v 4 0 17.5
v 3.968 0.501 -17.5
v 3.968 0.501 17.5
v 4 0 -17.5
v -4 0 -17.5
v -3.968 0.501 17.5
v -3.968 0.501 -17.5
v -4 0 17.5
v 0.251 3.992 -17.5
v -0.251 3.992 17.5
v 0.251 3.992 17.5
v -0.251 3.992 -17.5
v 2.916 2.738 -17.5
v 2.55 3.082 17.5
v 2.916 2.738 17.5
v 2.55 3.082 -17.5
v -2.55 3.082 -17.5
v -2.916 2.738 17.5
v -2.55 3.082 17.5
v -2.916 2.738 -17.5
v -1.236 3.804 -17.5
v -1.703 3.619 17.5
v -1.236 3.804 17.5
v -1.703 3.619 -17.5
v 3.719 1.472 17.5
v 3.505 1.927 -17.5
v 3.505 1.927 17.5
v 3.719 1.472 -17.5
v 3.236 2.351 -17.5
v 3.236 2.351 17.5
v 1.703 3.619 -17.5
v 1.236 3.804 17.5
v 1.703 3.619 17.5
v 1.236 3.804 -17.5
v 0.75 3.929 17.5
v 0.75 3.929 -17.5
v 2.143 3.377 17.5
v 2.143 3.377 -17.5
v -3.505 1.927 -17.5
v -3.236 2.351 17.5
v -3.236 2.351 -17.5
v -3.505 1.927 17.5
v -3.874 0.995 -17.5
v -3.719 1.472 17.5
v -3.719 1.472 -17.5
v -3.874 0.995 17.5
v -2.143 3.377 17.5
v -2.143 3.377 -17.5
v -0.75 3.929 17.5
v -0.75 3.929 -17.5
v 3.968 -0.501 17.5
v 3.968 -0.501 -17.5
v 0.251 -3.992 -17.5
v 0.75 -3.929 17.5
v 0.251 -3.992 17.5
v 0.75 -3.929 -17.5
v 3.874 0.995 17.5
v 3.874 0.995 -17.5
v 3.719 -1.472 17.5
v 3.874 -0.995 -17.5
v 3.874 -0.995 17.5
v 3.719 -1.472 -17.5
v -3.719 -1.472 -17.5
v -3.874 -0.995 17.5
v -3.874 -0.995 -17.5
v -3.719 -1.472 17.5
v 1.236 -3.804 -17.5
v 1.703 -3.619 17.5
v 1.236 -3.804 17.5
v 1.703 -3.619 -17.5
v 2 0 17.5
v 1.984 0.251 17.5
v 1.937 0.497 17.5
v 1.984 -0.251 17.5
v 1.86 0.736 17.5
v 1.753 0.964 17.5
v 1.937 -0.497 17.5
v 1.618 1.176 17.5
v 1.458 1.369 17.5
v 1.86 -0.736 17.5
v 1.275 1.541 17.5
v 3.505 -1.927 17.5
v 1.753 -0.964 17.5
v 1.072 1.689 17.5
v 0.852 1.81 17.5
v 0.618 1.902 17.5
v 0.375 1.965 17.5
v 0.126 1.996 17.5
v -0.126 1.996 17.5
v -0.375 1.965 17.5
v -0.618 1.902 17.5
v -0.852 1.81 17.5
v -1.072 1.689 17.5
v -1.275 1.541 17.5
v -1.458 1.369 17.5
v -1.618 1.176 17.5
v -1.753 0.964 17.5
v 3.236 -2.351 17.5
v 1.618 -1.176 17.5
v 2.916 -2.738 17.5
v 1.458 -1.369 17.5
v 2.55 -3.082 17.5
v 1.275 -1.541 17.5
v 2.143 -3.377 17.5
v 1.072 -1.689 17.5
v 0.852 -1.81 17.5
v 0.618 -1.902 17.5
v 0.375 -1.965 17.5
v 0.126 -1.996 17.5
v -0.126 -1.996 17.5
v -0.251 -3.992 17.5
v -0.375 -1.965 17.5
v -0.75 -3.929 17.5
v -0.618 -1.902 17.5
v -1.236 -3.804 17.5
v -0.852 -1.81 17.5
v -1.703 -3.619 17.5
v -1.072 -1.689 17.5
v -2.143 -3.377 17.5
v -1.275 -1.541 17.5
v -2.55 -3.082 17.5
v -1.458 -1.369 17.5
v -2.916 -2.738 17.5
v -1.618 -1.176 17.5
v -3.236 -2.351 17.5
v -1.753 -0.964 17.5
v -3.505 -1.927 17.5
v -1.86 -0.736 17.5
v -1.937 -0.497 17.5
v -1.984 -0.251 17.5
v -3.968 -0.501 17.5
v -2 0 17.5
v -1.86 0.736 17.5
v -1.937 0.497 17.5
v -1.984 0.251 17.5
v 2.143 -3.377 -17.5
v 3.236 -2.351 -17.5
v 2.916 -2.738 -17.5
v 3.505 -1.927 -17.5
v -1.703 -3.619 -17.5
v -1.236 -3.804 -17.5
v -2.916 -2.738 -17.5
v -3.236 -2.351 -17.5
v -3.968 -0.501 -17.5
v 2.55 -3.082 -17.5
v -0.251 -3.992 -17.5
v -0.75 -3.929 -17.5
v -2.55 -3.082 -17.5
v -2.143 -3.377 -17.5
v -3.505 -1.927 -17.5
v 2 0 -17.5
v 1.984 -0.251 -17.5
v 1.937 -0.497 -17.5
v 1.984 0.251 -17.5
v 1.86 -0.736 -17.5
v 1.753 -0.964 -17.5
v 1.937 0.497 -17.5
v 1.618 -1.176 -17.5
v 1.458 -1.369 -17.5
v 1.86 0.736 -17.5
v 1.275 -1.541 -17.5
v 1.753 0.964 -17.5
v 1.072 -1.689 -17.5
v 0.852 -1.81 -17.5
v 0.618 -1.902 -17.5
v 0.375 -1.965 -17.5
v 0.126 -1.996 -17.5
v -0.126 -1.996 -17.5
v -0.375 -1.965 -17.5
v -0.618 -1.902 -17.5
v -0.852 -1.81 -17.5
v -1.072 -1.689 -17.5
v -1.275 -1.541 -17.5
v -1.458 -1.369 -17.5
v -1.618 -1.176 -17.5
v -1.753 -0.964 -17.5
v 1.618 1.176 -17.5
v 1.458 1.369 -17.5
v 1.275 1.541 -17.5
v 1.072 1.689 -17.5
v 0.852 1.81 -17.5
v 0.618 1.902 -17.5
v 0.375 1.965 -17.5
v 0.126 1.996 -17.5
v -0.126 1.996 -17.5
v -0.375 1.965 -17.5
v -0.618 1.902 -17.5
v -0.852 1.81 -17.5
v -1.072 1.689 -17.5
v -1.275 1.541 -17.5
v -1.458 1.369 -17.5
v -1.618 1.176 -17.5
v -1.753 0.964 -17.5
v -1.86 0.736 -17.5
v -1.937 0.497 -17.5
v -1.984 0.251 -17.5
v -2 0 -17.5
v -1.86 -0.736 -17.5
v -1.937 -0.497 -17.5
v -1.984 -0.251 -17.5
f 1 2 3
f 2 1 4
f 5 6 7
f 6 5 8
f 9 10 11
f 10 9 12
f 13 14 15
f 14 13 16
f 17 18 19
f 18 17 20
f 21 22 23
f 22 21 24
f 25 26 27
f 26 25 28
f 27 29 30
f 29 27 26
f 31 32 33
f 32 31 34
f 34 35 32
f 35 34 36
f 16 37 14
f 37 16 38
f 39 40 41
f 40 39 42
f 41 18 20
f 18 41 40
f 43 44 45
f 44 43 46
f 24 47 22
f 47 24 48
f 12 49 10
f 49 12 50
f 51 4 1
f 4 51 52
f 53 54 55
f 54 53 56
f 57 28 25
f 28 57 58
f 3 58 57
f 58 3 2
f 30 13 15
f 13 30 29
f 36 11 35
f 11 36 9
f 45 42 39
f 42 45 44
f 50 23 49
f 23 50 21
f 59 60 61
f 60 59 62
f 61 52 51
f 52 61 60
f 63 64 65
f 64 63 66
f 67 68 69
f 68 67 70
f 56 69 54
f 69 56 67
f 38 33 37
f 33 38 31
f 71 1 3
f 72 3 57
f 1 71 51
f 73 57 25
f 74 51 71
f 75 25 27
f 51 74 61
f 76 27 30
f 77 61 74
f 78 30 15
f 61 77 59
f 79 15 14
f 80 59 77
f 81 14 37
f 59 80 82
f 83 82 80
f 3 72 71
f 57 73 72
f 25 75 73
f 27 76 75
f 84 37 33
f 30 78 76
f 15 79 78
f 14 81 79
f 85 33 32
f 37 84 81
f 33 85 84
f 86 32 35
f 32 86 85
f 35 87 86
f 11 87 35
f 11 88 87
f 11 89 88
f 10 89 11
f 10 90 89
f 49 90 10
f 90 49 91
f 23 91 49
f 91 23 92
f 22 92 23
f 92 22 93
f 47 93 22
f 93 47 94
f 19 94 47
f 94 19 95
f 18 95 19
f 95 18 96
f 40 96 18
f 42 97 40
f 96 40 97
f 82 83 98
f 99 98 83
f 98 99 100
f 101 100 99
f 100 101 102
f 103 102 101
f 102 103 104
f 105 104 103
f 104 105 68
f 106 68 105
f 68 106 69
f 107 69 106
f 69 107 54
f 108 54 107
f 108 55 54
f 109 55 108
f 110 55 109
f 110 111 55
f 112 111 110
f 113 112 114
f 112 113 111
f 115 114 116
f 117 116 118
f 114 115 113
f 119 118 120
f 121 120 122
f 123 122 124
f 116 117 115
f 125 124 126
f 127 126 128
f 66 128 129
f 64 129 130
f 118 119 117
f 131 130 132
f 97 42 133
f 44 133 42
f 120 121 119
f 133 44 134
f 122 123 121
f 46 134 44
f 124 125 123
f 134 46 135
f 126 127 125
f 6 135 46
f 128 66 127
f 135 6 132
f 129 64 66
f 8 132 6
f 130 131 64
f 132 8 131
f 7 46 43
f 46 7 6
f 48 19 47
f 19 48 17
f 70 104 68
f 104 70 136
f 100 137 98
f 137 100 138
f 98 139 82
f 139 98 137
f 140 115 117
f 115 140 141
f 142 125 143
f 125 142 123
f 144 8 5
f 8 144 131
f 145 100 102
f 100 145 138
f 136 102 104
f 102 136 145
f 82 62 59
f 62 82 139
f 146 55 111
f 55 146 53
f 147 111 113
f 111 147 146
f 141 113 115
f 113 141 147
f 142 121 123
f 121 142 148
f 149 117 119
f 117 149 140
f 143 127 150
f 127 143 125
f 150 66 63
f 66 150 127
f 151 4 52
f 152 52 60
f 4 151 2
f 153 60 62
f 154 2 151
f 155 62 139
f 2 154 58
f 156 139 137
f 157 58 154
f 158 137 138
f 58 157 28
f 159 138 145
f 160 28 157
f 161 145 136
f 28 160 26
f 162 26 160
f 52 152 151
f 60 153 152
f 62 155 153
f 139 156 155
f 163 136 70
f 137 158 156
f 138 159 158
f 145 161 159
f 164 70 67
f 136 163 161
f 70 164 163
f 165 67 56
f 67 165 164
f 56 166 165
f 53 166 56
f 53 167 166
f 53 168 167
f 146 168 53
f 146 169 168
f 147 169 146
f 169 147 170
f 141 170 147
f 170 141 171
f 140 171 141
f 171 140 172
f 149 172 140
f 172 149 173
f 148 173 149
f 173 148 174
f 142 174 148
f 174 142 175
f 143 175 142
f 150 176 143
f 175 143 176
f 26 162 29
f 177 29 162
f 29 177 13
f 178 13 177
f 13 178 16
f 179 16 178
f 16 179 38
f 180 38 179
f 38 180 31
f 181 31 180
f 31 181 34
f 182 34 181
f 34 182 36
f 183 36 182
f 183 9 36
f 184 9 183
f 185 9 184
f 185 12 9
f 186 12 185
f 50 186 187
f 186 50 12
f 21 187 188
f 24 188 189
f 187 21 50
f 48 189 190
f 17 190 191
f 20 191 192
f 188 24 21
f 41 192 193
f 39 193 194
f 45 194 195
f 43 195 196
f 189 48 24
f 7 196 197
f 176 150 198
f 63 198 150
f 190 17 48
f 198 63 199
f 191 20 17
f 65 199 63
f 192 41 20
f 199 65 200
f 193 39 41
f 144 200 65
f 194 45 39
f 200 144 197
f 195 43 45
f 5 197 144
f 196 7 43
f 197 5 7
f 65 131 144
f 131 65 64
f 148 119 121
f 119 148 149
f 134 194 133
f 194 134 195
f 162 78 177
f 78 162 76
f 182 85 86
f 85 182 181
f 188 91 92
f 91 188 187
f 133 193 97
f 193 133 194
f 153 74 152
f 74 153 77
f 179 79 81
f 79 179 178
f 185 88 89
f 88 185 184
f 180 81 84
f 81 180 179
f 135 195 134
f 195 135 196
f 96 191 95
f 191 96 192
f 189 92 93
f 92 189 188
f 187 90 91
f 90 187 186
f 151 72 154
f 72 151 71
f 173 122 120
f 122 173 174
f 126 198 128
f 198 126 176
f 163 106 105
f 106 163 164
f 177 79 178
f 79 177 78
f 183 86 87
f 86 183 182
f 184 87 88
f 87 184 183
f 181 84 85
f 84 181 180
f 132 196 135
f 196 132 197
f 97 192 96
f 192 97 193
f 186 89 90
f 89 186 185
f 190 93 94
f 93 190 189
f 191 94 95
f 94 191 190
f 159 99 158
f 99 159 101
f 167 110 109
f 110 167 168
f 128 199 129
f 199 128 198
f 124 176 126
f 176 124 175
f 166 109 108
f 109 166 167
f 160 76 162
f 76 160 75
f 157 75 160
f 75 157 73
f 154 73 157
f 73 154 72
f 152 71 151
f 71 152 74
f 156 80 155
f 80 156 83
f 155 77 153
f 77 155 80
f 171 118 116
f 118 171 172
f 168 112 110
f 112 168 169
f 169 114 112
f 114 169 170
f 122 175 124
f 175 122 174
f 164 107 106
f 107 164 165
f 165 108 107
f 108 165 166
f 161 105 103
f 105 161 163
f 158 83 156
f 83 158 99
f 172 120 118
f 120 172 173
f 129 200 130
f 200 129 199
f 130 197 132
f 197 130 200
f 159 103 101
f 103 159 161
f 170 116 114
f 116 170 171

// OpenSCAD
$fn = 50;


difference() {
	union() {
		translate(v = [0, 0, -17.5000000000]) {
			cylinder(h = 35, r = 4.0000000000);
		}
	}
	union() {
		translate(v = [0, 0, -100.0000000000]) {
			cylinder(h = 200, r = 2.0000000000);
		}
	}
}
